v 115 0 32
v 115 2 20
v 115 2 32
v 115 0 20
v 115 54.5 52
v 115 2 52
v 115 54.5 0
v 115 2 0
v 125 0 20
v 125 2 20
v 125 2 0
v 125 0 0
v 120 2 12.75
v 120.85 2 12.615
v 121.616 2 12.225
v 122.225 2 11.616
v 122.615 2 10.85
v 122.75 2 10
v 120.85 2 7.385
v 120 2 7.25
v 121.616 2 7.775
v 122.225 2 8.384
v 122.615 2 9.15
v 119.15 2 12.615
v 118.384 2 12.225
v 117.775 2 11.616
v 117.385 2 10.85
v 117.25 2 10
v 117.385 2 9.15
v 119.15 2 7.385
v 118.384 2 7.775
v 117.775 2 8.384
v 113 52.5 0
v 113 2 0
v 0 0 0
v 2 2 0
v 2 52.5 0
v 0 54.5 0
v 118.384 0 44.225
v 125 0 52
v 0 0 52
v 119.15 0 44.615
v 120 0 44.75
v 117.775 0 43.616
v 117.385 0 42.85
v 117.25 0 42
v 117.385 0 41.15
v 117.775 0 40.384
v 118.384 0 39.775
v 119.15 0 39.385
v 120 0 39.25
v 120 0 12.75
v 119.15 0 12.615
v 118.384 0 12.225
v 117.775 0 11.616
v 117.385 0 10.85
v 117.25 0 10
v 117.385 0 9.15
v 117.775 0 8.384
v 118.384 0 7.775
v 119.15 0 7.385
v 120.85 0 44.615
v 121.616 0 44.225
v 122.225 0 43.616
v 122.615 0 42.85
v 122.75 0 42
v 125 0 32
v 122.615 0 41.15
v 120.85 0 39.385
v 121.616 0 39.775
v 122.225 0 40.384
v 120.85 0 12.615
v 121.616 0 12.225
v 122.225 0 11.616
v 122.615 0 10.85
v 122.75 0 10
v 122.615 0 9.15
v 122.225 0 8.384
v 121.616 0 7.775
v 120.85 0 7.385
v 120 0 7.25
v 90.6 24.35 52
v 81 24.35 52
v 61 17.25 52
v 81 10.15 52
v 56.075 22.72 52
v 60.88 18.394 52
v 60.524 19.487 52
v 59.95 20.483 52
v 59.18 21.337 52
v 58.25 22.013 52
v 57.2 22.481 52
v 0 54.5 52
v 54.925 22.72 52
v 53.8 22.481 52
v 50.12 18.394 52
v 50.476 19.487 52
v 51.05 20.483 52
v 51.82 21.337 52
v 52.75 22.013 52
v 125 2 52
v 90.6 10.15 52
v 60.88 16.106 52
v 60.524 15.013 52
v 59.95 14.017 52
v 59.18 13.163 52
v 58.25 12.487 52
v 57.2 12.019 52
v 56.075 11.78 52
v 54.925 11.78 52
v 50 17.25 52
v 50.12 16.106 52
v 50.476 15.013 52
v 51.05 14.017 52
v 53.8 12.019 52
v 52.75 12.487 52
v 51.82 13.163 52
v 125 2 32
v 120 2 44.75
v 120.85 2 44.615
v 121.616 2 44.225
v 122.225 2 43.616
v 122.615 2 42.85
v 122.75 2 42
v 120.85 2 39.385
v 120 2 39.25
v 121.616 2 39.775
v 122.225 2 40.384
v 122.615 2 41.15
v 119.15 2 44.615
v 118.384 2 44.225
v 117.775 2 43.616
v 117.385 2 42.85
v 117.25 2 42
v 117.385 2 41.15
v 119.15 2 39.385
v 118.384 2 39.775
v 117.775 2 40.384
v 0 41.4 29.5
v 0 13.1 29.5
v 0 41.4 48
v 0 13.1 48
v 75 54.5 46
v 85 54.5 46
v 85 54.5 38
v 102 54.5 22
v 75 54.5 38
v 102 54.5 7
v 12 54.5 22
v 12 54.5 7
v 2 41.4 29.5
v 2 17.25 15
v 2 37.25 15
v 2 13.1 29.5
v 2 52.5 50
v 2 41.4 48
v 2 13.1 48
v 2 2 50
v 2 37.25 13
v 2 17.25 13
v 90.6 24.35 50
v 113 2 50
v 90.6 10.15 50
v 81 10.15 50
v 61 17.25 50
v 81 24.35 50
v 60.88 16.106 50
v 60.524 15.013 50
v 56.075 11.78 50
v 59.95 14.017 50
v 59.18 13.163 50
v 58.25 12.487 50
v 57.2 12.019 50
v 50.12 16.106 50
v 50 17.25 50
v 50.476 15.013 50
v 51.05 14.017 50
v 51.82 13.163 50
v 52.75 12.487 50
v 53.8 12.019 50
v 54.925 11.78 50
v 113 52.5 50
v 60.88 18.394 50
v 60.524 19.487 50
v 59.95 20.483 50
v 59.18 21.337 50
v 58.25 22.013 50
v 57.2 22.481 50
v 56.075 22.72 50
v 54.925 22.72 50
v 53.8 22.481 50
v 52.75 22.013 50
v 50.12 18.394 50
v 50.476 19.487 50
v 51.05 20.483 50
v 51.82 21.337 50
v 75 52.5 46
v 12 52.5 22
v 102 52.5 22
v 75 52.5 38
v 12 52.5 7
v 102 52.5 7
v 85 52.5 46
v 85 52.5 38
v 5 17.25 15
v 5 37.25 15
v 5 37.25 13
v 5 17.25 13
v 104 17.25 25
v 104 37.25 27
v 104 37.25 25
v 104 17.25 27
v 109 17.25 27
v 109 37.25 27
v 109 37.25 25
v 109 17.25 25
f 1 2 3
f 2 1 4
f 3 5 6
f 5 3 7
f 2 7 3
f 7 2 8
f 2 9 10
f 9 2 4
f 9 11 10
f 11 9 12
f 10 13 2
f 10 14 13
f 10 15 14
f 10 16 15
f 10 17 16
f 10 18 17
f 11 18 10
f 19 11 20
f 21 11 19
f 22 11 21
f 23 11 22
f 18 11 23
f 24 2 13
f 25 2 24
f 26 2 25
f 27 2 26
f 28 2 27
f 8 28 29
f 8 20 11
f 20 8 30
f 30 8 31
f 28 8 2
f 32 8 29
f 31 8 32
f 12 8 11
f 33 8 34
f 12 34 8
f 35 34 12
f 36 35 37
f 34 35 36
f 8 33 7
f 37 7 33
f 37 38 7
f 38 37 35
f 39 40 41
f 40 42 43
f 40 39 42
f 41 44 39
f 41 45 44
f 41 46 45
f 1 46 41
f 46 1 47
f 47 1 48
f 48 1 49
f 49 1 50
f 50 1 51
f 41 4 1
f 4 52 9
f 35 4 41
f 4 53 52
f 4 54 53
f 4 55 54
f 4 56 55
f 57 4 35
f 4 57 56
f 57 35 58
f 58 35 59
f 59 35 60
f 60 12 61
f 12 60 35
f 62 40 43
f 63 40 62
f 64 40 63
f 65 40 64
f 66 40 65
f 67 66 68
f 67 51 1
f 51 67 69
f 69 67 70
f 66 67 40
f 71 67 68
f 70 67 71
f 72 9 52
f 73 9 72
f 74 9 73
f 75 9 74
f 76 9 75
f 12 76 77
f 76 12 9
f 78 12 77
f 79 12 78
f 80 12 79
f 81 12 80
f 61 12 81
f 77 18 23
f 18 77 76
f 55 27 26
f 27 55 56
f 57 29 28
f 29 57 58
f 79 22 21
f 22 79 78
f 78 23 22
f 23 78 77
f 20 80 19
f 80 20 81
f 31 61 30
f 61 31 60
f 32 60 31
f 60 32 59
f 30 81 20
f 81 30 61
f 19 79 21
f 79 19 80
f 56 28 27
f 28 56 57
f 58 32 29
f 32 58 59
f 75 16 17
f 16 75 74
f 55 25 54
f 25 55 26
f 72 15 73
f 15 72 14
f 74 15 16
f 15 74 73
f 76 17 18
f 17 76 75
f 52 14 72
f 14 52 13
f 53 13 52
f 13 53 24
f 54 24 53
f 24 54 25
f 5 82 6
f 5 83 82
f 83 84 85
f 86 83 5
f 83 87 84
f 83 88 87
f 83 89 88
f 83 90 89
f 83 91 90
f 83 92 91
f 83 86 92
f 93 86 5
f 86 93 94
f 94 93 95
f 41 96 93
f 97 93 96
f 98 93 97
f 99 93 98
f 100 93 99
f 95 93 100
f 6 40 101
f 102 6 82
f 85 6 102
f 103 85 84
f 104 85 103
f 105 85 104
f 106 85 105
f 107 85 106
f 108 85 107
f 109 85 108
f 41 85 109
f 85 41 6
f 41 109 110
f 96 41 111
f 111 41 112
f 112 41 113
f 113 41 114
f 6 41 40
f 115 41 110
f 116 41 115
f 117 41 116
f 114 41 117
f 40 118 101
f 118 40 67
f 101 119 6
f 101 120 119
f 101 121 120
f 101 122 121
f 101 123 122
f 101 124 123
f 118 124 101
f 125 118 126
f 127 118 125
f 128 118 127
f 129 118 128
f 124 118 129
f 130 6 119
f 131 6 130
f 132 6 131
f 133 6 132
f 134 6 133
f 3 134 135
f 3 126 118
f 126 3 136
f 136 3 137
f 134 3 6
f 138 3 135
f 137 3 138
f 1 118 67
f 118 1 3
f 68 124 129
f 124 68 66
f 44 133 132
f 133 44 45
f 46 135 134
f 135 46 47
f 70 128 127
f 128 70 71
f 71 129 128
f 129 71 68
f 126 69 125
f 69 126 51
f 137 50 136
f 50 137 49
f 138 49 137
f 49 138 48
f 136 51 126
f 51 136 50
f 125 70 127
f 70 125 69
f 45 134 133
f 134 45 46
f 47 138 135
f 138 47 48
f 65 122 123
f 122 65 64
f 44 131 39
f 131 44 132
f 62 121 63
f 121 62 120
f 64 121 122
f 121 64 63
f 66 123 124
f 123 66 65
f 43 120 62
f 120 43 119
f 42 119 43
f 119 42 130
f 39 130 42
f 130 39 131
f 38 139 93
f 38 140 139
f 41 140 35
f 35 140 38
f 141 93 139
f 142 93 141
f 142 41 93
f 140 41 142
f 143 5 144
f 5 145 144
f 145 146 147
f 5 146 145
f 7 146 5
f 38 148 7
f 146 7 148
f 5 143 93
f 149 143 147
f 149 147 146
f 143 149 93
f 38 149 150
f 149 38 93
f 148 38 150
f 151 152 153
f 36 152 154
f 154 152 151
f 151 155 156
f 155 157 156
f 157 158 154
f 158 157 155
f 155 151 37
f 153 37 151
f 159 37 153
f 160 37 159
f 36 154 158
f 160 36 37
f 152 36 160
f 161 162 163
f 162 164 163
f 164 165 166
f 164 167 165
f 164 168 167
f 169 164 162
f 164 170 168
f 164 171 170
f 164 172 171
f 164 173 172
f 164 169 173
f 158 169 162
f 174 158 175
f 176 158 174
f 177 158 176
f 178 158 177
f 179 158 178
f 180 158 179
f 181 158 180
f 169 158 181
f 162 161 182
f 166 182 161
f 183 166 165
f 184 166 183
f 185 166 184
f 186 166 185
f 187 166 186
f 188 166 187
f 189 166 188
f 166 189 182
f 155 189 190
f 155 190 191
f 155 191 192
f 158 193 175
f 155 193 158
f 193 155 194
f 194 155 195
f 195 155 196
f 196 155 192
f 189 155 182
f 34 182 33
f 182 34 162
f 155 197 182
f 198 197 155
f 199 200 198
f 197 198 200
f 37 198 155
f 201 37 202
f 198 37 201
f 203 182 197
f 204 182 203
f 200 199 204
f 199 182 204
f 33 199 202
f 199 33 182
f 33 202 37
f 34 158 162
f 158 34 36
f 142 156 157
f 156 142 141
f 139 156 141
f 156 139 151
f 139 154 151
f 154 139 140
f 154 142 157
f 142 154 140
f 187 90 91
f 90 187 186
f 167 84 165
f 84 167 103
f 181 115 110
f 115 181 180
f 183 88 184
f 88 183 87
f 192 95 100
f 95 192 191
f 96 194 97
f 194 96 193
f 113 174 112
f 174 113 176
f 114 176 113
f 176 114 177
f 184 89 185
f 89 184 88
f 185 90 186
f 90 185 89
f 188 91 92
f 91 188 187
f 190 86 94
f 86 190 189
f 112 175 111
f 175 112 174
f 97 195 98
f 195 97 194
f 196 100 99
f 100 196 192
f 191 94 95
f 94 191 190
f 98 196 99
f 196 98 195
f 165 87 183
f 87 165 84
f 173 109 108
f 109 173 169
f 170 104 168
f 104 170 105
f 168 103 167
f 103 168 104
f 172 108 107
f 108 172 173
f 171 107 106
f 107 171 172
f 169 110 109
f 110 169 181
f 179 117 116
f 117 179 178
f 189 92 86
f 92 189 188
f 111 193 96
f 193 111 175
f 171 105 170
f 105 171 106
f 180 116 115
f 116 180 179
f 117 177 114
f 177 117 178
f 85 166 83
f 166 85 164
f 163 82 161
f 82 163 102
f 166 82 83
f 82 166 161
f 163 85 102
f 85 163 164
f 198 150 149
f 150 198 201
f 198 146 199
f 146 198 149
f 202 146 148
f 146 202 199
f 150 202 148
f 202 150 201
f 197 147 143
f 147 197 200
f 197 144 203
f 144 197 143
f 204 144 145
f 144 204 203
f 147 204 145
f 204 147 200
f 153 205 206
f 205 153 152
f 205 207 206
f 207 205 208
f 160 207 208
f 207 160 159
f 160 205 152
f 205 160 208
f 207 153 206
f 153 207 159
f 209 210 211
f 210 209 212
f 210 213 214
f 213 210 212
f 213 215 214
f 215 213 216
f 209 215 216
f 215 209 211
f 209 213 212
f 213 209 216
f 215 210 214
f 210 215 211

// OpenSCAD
BaseWidth = 111;
BaseDepth = 50.5;
BaseHeightTop = 50;

WallThickness = 2;

AnchorWidth = 20;
AnchorHeight = 10;
AhcnorHoleDiameter = 5.5;

PowerInputHoleWidth = 28.3;
PowerInputHoleHeight= 18.5;

ButtonHoleDiameter = 11;

PowerSwithLength = 14.2;
PowerSwithWidth = 9.6;

BackWindowWidth  = 90;
BackWindowHeight = 15;

// Top main body
difference() {
    cube(size=[BaseWidth+2*WallThickness, BaseDepth+2*WallThickness, BaseHeightTop+WallThickness], center=false);
    translate([WallThickness, WallThickness, 0])
    cube(size=[BaseWidth, BaseDepth, BaseHeightTop], center=false);

    // Power Input Hole
    translate([0, BaseDepth/2-PowerInputHoleWidth/2+WallThickness, BaseHeightTop-WallThickness-PowerInputHoleHeight])
    cube(size=[WallThickness, PowerInputHoleWidth, PowerInputHoleHeight], center=false);

    // Button hole
    translate([BaseWidth/2, BaseDepth/2+WallThickness-10, BaseHeightTop])
    cylinder(h=WallThickness, d=ButtonHoleDiameter, center=false, $fn=30);

    // Power switch hole
    translate([BaseWidth - 30, BaseDepth/2-PowerSwithLength/2+WallThickness-10, BaseHeightTop])
    cube(size=[PowerSwithWidth, PowerSwithLength, WallThickness], center=false);

    // Back Window
    translate([12, BaseDepth+WallThickness, 7])
    cube(size=[BackWindowWidth, WallThickness, BackWindowHeight], center=false);

    // Small Window for Replay LEDs
    translate([75, BaseDepth+WallThickness, 38])
    cube(size=[10, WallThickness, 8], center=false);

}




// Inside anchor 1
translate([0, BaseDepth/2-AnchorWidth/2+WallThickness, BaseHeightTop/2-12])
cube(size=[AnchorHeight/2, AnchorWidth, WallThickness], center=false);

// Inside anchor 2
translate([BaseWidth-AnchorHeight/2-WallThickness, BaseDepth/2-AnchorWidth/2+WallThickness, BaseHeightTop/2])
cube(size=[AnchorHeight/2, AnchorWidth, WallThickness], center=false);

// Side anchor 1
translate([BaseWidth+WallThickness*2, 0, 0])
    difference() {
        cube(size=[AnchorHeight, WallThickness, AnchorWidth], center=false);
        translate([AnchorHeight/2, 0, AnchorWidth/2])
        rotate([-90, 0, 0])
        cylinder(h=WallThickness, d=AhcnorHoleDiameter, center=false, $fn=20);
    }
   
// Side anchor 2
translate([BaseWidth+WallThickness*2, 0, BaseHeightTop+WallThickness-AnchorWidth])
    difference() {
        cube(size=[AnchorHeight, WallThickness, AnchorWidth], center=false);
        translate([AnchorHeight/2, 0, AnchorWidth/2])
        rotate([-90, 0, 0])
        cylinder(h=WallThickness, d=AhcnorHoleDiameter, center=false, $fn=20);
    }
    


    
